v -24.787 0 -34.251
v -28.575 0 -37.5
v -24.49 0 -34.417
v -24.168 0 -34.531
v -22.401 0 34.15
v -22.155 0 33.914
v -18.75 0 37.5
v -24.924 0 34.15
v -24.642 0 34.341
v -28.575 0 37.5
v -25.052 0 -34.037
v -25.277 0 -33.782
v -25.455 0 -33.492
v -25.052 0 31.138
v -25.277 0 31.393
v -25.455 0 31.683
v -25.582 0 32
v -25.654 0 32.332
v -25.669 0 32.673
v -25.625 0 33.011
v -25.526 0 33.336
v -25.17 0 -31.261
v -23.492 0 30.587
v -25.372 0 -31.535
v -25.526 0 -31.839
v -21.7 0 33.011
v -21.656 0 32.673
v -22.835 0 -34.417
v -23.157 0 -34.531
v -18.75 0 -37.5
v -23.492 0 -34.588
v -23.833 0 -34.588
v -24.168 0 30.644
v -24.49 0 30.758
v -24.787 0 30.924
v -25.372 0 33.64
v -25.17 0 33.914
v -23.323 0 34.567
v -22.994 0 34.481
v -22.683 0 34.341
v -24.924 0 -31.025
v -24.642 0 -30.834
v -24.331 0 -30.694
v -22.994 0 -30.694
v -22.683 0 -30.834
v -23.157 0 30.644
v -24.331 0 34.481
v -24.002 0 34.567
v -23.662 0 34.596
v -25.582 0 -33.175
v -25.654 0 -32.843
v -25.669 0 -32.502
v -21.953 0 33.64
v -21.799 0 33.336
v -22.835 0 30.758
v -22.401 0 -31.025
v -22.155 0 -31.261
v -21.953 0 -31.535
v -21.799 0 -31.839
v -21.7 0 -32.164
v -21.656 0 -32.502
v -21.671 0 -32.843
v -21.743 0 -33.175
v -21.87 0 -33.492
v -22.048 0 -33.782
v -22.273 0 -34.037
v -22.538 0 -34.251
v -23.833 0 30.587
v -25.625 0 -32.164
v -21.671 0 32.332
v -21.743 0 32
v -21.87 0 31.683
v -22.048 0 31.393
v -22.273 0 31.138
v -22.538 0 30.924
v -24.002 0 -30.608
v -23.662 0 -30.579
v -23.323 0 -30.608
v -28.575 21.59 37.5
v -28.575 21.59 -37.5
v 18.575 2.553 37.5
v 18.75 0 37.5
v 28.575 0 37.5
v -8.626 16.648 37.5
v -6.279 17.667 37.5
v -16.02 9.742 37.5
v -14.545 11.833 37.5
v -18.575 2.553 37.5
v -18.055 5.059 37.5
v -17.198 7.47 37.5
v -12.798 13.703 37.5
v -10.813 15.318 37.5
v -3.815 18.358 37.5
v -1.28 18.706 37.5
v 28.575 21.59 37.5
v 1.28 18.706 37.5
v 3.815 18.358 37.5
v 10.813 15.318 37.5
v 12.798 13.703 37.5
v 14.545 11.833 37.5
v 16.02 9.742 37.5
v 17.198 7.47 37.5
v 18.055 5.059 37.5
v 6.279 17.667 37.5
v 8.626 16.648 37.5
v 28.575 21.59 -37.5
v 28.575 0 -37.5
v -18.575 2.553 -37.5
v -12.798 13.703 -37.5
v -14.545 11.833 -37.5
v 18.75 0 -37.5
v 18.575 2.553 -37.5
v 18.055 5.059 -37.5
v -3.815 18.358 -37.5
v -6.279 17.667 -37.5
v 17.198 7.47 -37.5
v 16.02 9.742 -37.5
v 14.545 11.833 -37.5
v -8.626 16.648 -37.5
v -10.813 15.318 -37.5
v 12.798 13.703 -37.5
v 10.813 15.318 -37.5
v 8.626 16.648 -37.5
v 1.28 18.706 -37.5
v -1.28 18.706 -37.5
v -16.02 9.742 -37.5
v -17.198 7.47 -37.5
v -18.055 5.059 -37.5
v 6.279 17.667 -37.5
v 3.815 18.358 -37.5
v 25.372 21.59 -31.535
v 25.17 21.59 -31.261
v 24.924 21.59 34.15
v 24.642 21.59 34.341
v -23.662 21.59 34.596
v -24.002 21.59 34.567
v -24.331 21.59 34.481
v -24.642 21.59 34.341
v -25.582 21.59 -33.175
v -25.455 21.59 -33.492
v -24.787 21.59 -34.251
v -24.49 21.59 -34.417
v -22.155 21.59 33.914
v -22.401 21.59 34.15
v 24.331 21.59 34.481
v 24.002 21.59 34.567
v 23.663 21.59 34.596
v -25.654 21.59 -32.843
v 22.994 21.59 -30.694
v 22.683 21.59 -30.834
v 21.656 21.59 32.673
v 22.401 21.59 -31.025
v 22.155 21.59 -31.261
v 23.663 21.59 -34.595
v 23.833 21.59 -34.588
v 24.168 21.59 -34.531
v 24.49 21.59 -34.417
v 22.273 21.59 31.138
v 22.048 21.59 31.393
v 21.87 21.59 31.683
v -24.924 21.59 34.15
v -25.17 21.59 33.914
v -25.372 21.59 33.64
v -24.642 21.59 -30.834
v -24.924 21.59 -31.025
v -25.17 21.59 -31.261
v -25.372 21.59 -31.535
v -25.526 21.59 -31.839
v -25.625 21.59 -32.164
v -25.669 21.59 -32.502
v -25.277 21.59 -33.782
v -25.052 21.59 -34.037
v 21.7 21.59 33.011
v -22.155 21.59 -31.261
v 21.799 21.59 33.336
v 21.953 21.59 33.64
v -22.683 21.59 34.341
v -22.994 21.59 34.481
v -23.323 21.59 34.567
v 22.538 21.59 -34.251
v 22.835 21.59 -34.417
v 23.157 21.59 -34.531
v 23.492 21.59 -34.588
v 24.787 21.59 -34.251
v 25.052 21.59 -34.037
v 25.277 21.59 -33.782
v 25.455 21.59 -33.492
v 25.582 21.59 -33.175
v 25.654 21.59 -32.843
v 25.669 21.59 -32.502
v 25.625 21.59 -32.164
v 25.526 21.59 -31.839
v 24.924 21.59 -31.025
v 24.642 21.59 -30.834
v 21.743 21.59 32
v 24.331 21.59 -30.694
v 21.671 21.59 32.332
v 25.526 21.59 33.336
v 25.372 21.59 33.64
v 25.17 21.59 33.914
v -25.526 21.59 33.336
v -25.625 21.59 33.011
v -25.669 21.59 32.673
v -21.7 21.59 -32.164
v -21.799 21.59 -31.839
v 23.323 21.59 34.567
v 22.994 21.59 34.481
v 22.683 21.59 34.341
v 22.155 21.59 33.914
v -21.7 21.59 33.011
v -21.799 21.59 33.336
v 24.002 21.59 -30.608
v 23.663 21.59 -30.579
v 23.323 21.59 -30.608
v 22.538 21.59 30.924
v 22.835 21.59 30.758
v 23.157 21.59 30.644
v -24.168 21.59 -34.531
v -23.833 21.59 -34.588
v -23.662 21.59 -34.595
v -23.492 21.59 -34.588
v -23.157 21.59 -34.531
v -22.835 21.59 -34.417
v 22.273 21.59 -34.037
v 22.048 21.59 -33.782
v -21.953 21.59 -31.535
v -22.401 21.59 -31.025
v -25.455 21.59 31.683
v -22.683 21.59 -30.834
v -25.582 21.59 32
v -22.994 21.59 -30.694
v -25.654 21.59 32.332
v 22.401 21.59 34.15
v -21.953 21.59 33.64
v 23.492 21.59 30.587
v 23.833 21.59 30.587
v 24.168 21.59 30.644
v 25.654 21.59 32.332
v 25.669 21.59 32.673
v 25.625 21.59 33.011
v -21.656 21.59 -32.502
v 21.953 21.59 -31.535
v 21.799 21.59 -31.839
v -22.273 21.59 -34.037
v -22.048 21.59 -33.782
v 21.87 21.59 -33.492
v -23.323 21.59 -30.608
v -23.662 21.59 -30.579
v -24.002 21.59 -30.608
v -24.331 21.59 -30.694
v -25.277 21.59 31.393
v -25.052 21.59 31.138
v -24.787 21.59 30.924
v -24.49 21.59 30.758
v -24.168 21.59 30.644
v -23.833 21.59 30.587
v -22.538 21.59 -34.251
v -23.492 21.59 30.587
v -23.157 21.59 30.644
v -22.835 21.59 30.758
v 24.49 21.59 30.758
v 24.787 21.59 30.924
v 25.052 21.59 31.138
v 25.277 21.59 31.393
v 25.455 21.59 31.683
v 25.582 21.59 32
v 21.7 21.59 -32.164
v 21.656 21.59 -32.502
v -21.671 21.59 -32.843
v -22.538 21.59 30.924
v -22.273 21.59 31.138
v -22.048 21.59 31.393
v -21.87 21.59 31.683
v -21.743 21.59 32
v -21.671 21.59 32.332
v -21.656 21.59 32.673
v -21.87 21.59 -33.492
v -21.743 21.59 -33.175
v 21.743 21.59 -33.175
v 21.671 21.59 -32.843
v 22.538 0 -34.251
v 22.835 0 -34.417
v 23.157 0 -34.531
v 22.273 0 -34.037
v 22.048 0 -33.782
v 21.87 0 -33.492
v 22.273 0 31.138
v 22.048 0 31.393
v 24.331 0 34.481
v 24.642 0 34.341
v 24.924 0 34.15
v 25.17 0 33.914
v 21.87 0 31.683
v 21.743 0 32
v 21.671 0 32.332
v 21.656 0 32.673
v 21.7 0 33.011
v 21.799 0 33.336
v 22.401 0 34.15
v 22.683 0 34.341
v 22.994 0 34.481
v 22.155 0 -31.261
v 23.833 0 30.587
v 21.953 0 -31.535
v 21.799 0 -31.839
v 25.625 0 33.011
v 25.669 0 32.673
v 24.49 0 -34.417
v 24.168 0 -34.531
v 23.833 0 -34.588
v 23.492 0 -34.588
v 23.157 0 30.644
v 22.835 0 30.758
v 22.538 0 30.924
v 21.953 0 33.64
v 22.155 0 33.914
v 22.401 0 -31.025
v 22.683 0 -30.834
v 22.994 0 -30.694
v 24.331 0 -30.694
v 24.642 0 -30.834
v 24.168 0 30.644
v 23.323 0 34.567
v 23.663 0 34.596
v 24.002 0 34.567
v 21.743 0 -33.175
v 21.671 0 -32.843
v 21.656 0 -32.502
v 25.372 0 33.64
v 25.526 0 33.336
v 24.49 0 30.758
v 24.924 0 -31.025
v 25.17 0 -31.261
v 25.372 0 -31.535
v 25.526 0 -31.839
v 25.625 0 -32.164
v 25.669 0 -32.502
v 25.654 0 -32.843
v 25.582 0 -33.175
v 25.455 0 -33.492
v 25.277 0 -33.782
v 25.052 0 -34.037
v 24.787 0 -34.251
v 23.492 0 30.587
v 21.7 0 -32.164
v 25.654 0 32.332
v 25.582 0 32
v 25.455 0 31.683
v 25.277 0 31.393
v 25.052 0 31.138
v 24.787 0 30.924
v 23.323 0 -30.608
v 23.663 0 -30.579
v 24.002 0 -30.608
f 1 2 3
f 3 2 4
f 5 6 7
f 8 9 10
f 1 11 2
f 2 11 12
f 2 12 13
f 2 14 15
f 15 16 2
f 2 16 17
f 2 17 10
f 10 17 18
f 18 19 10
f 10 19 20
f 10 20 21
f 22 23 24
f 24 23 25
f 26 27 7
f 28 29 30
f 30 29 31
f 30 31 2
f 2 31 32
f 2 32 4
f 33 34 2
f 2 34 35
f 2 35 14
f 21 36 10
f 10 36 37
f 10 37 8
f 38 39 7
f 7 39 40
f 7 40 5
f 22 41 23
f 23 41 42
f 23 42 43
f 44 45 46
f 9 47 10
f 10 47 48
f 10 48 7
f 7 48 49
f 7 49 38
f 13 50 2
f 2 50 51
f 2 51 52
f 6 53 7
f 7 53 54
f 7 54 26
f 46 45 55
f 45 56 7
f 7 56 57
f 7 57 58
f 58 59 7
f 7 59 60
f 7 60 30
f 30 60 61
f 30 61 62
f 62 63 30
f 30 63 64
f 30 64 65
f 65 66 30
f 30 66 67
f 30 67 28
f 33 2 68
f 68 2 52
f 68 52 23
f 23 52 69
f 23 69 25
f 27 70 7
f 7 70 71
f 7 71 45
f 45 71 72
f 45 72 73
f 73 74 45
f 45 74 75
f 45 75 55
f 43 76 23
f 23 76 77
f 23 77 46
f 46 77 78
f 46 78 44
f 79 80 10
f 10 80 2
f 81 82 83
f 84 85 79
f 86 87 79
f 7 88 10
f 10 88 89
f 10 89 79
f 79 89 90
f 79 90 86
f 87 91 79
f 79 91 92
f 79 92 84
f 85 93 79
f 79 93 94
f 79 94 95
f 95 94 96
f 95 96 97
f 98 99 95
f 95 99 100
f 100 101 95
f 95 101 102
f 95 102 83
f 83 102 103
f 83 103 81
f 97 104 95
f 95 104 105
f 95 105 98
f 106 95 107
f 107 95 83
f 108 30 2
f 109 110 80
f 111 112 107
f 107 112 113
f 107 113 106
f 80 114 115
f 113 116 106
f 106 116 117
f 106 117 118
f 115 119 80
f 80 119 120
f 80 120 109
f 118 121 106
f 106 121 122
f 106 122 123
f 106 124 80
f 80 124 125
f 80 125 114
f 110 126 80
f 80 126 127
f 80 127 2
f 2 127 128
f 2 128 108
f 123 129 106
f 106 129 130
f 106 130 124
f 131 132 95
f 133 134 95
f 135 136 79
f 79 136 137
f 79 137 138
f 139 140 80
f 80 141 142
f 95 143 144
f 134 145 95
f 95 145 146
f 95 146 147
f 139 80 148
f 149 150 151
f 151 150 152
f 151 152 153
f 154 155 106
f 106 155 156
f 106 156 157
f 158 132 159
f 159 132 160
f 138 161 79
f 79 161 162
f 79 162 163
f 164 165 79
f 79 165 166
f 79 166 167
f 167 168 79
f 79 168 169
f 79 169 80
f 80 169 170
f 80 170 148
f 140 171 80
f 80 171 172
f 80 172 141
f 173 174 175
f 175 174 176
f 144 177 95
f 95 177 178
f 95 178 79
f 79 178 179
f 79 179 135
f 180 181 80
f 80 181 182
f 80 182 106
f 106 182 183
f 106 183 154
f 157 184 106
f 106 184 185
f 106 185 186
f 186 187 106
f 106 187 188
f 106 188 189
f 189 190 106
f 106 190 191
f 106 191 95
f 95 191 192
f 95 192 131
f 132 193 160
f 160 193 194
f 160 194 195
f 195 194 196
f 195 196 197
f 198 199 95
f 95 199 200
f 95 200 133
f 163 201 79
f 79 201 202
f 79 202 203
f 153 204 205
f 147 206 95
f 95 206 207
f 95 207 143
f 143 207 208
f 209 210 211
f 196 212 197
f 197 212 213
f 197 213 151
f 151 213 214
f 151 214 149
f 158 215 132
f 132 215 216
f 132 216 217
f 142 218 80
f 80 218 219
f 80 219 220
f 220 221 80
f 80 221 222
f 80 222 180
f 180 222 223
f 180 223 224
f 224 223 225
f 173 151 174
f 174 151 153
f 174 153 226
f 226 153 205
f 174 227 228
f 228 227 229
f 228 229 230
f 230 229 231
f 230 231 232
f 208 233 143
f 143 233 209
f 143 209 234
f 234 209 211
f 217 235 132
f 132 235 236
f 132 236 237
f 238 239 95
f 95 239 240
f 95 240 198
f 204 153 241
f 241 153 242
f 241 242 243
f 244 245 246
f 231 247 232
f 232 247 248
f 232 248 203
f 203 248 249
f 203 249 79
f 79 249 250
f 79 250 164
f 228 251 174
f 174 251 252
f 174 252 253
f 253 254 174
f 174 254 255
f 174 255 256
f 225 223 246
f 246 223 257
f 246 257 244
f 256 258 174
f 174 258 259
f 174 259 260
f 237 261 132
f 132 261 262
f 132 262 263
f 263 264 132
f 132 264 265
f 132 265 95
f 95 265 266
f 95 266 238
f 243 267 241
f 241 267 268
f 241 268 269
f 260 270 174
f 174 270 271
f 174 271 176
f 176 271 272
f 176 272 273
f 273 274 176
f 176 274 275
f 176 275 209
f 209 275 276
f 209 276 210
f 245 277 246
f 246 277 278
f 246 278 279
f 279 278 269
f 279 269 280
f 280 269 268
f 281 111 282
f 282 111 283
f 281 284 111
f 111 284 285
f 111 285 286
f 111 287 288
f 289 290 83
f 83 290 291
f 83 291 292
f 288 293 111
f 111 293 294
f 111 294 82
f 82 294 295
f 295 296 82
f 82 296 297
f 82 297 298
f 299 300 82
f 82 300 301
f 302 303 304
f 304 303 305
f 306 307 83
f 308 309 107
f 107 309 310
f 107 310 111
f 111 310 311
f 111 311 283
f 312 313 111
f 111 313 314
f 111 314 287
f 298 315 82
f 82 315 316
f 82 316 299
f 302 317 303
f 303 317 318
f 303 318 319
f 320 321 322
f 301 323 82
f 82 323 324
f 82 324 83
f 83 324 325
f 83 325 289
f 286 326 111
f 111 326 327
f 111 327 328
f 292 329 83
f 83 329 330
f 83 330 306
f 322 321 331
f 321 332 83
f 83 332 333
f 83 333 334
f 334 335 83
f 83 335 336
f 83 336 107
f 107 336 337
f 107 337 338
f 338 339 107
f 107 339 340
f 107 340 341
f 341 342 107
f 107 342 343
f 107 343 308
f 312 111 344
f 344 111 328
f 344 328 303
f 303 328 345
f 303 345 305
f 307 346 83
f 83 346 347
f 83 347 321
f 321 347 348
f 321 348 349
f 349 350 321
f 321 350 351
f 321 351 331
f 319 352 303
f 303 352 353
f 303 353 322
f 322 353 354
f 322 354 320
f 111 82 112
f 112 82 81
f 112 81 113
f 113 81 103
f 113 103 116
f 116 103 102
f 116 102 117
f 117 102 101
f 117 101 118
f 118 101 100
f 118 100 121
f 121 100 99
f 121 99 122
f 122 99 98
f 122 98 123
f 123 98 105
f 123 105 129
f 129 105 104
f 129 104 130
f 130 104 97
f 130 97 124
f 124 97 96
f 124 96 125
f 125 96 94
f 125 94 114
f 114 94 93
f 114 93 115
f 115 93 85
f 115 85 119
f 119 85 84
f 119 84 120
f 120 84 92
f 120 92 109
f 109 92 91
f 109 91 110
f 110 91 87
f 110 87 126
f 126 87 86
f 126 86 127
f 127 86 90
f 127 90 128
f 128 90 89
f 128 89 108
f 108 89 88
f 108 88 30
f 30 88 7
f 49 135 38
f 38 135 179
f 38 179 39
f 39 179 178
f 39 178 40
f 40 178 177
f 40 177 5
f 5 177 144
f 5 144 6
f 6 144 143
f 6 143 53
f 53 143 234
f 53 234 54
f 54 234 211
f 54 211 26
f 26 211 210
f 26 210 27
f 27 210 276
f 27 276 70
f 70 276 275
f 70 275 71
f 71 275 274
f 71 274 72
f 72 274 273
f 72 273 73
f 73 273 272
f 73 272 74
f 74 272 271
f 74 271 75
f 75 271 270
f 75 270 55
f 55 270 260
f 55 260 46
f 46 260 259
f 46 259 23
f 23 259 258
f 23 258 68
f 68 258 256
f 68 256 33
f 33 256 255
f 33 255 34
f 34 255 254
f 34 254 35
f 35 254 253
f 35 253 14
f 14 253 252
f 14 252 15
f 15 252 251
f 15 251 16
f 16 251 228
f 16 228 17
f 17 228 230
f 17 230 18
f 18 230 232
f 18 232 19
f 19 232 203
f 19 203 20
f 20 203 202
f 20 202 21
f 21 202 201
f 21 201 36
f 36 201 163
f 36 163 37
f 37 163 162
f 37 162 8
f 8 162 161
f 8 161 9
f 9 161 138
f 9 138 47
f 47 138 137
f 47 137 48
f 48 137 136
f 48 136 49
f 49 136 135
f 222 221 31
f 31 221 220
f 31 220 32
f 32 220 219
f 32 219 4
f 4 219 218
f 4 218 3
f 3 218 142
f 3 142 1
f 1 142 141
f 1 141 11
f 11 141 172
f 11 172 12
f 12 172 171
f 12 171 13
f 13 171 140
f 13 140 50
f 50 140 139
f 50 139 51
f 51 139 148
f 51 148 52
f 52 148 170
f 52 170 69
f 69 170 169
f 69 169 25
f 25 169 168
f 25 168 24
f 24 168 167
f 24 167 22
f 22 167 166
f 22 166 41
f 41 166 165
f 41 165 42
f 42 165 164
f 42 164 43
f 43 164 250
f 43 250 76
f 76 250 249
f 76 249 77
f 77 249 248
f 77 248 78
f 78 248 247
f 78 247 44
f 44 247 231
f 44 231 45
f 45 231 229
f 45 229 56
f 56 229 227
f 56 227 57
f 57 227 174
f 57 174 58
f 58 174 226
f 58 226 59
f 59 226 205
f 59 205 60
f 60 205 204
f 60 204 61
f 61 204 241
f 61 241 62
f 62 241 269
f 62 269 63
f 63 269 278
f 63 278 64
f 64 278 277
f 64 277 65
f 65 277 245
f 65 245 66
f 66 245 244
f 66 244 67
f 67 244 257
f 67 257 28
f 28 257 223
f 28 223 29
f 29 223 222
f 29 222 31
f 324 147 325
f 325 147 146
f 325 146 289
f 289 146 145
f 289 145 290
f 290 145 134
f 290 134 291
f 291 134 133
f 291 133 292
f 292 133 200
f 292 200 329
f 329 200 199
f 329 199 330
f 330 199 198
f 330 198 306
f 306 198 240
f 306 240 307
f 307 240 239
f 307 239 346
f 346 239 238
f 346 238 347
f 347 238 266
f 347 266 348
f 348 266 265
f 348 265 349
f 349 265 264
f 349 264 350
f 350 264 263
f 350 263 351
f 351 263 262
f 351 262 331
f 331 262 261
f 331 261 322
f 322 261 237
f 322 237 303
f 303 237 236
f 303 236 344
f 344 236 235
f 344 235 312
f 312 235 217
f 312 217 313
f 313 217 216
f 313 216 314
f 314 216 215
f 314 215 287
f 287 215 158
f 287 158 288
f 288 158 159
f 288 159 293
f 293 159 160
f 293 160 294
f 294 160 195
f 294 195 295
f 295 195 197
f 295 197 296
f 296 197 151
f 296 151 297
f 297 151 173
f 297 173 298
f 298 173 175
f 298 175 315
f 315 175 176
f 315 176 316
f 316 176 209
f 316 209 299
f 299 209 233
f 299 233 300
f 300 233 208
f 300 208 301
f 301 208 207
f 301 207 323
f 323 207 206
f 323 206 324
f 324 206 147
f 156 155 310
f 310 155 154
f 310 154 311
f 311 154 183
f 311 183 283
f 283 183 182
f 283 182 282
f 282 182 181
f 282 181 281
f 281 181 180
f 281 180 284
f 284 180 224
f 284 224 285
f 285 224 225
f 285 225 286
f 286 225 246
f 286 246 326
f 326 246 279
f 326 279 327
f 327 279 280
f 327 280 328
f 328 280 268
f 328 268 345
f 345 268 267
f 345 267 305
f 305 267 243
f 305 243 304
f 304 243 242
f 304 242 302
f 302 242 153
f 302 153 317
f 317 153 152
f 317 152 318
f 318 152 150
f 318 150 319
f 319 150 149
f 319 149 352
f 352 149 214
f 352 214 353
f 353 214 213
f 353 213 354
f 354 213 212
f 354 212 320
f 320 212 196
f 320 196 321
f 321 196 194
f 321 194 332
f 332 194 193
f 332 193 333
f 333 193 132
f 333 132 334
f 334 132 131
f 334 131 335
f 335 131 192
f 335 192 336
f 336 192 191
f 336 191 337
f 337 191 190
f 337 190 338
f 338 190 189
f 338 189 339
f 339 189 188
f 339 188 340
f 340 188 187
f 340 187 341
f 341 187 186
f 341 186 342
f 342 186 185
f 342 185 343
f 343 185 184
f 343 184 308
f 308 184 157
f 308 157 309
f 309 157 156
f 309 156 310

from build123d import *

# Parameters (mm, degrees)
SKETCH1_W                                  = 57.15
SKETCH1_H                                  = 75
BOSS_EXTRUDE1_DEPTH                        = 21.59
CUT_EXTRUDE1_REACH                         = 77
SKETCH5_R                                  = 2.008
CUT_EXTRUDE5_DEPTH                         = 21.59
MIRROR1_AT_THE_SECOND_PLANE_COPY_1_SKETC_R = 2.008
MIRROR1_AT_THE_SECOND_PLANE_COPY_1_DEPTH   = 21.59


with BuildPart() as part:
    # Sketch1 → Boss-Extrude1 (new body)
    with BuildSketch(Plane(origin=(0, 0, 0), x_dir=(1, 0, 0), z_dir=(0, 1, 0))):
        Rectangle(SKETCH1_W, SKETCH1_H)
    extrude(amount=BOSS_EXTRUDE1_DEPTH)

    # Sketch3 → Cut-Extrude1 (cut, up to next)
    with BuildSketch(Plane.XY.offset(37.5), mode=Mode.PRIVATE) as cut_extrude1_sk1:
        with BuildLine():
            Line((-18.75, 0), (18.75, 0))
            ThreePointArc((18.75, 0), (0, 18.75), (-18.75, 0))
        make_face()
    cut_extrude1_tool1 = extrude(cut_extrude1_sk1.sketch, amount=-CUT_EXTRUDE1_REACH, mode=Mode.PRIVATE) & part.part
    add(cut_extrude1_tool1.solids().sort_by_distance((0, 7.957747, 37.5))[0], mode=Mode.SUBTRACT)

    # Sketch5 → Cut-Extrude5 (cut)
    with BuildSketch(Plane(origin=(0, 21.59, 0), x_dir=(1, 0, 0), z_dir=(0, 1, 0))):
        with Locations((-23.6625, -32.5875)):
            Circle(SKETCH5_R)
    cut_extrude5 = extrude(amount=-CUT_EXTRUDE5_DEPTH, mode=Mode.SUBTRACT)

    # Mirror1: Cut-Extrude5 across plane
    add(cut_extrude5.mirror(Plane(origin=(0, 0, 0), x_dir=(0, 0, 1), z_dir=(1, 0, 0))), mode=Mode.SUBTRACT)

    # Mirror1 at the second plane: Cut-Extrude5 across plane
    add(cut_extrude5.mirror(Plane.XY), mode=Mode.SUBTRACT)

    # Mirror1 at the second plane copy 1 sketc → Mirror1 at the second plane copy 1 (cut)
    with BuildSketch(Plane(origin=(0, 21.59, 0), x_dir=(-1, 0, 0), z_dir=(0, 1, 0))):
        with Locations((-23.6625, -32.5875)):
            Circle(MIRROR1_AT_THE_SECOND_PLANE_COPY_1_SKETC_R)
    extrude(amount=-MIRROR1_AT_THE_SECOND_PLANE_COPY_1_DEPTH, mode=Mode.SUBTRACT)


solid = part.part
